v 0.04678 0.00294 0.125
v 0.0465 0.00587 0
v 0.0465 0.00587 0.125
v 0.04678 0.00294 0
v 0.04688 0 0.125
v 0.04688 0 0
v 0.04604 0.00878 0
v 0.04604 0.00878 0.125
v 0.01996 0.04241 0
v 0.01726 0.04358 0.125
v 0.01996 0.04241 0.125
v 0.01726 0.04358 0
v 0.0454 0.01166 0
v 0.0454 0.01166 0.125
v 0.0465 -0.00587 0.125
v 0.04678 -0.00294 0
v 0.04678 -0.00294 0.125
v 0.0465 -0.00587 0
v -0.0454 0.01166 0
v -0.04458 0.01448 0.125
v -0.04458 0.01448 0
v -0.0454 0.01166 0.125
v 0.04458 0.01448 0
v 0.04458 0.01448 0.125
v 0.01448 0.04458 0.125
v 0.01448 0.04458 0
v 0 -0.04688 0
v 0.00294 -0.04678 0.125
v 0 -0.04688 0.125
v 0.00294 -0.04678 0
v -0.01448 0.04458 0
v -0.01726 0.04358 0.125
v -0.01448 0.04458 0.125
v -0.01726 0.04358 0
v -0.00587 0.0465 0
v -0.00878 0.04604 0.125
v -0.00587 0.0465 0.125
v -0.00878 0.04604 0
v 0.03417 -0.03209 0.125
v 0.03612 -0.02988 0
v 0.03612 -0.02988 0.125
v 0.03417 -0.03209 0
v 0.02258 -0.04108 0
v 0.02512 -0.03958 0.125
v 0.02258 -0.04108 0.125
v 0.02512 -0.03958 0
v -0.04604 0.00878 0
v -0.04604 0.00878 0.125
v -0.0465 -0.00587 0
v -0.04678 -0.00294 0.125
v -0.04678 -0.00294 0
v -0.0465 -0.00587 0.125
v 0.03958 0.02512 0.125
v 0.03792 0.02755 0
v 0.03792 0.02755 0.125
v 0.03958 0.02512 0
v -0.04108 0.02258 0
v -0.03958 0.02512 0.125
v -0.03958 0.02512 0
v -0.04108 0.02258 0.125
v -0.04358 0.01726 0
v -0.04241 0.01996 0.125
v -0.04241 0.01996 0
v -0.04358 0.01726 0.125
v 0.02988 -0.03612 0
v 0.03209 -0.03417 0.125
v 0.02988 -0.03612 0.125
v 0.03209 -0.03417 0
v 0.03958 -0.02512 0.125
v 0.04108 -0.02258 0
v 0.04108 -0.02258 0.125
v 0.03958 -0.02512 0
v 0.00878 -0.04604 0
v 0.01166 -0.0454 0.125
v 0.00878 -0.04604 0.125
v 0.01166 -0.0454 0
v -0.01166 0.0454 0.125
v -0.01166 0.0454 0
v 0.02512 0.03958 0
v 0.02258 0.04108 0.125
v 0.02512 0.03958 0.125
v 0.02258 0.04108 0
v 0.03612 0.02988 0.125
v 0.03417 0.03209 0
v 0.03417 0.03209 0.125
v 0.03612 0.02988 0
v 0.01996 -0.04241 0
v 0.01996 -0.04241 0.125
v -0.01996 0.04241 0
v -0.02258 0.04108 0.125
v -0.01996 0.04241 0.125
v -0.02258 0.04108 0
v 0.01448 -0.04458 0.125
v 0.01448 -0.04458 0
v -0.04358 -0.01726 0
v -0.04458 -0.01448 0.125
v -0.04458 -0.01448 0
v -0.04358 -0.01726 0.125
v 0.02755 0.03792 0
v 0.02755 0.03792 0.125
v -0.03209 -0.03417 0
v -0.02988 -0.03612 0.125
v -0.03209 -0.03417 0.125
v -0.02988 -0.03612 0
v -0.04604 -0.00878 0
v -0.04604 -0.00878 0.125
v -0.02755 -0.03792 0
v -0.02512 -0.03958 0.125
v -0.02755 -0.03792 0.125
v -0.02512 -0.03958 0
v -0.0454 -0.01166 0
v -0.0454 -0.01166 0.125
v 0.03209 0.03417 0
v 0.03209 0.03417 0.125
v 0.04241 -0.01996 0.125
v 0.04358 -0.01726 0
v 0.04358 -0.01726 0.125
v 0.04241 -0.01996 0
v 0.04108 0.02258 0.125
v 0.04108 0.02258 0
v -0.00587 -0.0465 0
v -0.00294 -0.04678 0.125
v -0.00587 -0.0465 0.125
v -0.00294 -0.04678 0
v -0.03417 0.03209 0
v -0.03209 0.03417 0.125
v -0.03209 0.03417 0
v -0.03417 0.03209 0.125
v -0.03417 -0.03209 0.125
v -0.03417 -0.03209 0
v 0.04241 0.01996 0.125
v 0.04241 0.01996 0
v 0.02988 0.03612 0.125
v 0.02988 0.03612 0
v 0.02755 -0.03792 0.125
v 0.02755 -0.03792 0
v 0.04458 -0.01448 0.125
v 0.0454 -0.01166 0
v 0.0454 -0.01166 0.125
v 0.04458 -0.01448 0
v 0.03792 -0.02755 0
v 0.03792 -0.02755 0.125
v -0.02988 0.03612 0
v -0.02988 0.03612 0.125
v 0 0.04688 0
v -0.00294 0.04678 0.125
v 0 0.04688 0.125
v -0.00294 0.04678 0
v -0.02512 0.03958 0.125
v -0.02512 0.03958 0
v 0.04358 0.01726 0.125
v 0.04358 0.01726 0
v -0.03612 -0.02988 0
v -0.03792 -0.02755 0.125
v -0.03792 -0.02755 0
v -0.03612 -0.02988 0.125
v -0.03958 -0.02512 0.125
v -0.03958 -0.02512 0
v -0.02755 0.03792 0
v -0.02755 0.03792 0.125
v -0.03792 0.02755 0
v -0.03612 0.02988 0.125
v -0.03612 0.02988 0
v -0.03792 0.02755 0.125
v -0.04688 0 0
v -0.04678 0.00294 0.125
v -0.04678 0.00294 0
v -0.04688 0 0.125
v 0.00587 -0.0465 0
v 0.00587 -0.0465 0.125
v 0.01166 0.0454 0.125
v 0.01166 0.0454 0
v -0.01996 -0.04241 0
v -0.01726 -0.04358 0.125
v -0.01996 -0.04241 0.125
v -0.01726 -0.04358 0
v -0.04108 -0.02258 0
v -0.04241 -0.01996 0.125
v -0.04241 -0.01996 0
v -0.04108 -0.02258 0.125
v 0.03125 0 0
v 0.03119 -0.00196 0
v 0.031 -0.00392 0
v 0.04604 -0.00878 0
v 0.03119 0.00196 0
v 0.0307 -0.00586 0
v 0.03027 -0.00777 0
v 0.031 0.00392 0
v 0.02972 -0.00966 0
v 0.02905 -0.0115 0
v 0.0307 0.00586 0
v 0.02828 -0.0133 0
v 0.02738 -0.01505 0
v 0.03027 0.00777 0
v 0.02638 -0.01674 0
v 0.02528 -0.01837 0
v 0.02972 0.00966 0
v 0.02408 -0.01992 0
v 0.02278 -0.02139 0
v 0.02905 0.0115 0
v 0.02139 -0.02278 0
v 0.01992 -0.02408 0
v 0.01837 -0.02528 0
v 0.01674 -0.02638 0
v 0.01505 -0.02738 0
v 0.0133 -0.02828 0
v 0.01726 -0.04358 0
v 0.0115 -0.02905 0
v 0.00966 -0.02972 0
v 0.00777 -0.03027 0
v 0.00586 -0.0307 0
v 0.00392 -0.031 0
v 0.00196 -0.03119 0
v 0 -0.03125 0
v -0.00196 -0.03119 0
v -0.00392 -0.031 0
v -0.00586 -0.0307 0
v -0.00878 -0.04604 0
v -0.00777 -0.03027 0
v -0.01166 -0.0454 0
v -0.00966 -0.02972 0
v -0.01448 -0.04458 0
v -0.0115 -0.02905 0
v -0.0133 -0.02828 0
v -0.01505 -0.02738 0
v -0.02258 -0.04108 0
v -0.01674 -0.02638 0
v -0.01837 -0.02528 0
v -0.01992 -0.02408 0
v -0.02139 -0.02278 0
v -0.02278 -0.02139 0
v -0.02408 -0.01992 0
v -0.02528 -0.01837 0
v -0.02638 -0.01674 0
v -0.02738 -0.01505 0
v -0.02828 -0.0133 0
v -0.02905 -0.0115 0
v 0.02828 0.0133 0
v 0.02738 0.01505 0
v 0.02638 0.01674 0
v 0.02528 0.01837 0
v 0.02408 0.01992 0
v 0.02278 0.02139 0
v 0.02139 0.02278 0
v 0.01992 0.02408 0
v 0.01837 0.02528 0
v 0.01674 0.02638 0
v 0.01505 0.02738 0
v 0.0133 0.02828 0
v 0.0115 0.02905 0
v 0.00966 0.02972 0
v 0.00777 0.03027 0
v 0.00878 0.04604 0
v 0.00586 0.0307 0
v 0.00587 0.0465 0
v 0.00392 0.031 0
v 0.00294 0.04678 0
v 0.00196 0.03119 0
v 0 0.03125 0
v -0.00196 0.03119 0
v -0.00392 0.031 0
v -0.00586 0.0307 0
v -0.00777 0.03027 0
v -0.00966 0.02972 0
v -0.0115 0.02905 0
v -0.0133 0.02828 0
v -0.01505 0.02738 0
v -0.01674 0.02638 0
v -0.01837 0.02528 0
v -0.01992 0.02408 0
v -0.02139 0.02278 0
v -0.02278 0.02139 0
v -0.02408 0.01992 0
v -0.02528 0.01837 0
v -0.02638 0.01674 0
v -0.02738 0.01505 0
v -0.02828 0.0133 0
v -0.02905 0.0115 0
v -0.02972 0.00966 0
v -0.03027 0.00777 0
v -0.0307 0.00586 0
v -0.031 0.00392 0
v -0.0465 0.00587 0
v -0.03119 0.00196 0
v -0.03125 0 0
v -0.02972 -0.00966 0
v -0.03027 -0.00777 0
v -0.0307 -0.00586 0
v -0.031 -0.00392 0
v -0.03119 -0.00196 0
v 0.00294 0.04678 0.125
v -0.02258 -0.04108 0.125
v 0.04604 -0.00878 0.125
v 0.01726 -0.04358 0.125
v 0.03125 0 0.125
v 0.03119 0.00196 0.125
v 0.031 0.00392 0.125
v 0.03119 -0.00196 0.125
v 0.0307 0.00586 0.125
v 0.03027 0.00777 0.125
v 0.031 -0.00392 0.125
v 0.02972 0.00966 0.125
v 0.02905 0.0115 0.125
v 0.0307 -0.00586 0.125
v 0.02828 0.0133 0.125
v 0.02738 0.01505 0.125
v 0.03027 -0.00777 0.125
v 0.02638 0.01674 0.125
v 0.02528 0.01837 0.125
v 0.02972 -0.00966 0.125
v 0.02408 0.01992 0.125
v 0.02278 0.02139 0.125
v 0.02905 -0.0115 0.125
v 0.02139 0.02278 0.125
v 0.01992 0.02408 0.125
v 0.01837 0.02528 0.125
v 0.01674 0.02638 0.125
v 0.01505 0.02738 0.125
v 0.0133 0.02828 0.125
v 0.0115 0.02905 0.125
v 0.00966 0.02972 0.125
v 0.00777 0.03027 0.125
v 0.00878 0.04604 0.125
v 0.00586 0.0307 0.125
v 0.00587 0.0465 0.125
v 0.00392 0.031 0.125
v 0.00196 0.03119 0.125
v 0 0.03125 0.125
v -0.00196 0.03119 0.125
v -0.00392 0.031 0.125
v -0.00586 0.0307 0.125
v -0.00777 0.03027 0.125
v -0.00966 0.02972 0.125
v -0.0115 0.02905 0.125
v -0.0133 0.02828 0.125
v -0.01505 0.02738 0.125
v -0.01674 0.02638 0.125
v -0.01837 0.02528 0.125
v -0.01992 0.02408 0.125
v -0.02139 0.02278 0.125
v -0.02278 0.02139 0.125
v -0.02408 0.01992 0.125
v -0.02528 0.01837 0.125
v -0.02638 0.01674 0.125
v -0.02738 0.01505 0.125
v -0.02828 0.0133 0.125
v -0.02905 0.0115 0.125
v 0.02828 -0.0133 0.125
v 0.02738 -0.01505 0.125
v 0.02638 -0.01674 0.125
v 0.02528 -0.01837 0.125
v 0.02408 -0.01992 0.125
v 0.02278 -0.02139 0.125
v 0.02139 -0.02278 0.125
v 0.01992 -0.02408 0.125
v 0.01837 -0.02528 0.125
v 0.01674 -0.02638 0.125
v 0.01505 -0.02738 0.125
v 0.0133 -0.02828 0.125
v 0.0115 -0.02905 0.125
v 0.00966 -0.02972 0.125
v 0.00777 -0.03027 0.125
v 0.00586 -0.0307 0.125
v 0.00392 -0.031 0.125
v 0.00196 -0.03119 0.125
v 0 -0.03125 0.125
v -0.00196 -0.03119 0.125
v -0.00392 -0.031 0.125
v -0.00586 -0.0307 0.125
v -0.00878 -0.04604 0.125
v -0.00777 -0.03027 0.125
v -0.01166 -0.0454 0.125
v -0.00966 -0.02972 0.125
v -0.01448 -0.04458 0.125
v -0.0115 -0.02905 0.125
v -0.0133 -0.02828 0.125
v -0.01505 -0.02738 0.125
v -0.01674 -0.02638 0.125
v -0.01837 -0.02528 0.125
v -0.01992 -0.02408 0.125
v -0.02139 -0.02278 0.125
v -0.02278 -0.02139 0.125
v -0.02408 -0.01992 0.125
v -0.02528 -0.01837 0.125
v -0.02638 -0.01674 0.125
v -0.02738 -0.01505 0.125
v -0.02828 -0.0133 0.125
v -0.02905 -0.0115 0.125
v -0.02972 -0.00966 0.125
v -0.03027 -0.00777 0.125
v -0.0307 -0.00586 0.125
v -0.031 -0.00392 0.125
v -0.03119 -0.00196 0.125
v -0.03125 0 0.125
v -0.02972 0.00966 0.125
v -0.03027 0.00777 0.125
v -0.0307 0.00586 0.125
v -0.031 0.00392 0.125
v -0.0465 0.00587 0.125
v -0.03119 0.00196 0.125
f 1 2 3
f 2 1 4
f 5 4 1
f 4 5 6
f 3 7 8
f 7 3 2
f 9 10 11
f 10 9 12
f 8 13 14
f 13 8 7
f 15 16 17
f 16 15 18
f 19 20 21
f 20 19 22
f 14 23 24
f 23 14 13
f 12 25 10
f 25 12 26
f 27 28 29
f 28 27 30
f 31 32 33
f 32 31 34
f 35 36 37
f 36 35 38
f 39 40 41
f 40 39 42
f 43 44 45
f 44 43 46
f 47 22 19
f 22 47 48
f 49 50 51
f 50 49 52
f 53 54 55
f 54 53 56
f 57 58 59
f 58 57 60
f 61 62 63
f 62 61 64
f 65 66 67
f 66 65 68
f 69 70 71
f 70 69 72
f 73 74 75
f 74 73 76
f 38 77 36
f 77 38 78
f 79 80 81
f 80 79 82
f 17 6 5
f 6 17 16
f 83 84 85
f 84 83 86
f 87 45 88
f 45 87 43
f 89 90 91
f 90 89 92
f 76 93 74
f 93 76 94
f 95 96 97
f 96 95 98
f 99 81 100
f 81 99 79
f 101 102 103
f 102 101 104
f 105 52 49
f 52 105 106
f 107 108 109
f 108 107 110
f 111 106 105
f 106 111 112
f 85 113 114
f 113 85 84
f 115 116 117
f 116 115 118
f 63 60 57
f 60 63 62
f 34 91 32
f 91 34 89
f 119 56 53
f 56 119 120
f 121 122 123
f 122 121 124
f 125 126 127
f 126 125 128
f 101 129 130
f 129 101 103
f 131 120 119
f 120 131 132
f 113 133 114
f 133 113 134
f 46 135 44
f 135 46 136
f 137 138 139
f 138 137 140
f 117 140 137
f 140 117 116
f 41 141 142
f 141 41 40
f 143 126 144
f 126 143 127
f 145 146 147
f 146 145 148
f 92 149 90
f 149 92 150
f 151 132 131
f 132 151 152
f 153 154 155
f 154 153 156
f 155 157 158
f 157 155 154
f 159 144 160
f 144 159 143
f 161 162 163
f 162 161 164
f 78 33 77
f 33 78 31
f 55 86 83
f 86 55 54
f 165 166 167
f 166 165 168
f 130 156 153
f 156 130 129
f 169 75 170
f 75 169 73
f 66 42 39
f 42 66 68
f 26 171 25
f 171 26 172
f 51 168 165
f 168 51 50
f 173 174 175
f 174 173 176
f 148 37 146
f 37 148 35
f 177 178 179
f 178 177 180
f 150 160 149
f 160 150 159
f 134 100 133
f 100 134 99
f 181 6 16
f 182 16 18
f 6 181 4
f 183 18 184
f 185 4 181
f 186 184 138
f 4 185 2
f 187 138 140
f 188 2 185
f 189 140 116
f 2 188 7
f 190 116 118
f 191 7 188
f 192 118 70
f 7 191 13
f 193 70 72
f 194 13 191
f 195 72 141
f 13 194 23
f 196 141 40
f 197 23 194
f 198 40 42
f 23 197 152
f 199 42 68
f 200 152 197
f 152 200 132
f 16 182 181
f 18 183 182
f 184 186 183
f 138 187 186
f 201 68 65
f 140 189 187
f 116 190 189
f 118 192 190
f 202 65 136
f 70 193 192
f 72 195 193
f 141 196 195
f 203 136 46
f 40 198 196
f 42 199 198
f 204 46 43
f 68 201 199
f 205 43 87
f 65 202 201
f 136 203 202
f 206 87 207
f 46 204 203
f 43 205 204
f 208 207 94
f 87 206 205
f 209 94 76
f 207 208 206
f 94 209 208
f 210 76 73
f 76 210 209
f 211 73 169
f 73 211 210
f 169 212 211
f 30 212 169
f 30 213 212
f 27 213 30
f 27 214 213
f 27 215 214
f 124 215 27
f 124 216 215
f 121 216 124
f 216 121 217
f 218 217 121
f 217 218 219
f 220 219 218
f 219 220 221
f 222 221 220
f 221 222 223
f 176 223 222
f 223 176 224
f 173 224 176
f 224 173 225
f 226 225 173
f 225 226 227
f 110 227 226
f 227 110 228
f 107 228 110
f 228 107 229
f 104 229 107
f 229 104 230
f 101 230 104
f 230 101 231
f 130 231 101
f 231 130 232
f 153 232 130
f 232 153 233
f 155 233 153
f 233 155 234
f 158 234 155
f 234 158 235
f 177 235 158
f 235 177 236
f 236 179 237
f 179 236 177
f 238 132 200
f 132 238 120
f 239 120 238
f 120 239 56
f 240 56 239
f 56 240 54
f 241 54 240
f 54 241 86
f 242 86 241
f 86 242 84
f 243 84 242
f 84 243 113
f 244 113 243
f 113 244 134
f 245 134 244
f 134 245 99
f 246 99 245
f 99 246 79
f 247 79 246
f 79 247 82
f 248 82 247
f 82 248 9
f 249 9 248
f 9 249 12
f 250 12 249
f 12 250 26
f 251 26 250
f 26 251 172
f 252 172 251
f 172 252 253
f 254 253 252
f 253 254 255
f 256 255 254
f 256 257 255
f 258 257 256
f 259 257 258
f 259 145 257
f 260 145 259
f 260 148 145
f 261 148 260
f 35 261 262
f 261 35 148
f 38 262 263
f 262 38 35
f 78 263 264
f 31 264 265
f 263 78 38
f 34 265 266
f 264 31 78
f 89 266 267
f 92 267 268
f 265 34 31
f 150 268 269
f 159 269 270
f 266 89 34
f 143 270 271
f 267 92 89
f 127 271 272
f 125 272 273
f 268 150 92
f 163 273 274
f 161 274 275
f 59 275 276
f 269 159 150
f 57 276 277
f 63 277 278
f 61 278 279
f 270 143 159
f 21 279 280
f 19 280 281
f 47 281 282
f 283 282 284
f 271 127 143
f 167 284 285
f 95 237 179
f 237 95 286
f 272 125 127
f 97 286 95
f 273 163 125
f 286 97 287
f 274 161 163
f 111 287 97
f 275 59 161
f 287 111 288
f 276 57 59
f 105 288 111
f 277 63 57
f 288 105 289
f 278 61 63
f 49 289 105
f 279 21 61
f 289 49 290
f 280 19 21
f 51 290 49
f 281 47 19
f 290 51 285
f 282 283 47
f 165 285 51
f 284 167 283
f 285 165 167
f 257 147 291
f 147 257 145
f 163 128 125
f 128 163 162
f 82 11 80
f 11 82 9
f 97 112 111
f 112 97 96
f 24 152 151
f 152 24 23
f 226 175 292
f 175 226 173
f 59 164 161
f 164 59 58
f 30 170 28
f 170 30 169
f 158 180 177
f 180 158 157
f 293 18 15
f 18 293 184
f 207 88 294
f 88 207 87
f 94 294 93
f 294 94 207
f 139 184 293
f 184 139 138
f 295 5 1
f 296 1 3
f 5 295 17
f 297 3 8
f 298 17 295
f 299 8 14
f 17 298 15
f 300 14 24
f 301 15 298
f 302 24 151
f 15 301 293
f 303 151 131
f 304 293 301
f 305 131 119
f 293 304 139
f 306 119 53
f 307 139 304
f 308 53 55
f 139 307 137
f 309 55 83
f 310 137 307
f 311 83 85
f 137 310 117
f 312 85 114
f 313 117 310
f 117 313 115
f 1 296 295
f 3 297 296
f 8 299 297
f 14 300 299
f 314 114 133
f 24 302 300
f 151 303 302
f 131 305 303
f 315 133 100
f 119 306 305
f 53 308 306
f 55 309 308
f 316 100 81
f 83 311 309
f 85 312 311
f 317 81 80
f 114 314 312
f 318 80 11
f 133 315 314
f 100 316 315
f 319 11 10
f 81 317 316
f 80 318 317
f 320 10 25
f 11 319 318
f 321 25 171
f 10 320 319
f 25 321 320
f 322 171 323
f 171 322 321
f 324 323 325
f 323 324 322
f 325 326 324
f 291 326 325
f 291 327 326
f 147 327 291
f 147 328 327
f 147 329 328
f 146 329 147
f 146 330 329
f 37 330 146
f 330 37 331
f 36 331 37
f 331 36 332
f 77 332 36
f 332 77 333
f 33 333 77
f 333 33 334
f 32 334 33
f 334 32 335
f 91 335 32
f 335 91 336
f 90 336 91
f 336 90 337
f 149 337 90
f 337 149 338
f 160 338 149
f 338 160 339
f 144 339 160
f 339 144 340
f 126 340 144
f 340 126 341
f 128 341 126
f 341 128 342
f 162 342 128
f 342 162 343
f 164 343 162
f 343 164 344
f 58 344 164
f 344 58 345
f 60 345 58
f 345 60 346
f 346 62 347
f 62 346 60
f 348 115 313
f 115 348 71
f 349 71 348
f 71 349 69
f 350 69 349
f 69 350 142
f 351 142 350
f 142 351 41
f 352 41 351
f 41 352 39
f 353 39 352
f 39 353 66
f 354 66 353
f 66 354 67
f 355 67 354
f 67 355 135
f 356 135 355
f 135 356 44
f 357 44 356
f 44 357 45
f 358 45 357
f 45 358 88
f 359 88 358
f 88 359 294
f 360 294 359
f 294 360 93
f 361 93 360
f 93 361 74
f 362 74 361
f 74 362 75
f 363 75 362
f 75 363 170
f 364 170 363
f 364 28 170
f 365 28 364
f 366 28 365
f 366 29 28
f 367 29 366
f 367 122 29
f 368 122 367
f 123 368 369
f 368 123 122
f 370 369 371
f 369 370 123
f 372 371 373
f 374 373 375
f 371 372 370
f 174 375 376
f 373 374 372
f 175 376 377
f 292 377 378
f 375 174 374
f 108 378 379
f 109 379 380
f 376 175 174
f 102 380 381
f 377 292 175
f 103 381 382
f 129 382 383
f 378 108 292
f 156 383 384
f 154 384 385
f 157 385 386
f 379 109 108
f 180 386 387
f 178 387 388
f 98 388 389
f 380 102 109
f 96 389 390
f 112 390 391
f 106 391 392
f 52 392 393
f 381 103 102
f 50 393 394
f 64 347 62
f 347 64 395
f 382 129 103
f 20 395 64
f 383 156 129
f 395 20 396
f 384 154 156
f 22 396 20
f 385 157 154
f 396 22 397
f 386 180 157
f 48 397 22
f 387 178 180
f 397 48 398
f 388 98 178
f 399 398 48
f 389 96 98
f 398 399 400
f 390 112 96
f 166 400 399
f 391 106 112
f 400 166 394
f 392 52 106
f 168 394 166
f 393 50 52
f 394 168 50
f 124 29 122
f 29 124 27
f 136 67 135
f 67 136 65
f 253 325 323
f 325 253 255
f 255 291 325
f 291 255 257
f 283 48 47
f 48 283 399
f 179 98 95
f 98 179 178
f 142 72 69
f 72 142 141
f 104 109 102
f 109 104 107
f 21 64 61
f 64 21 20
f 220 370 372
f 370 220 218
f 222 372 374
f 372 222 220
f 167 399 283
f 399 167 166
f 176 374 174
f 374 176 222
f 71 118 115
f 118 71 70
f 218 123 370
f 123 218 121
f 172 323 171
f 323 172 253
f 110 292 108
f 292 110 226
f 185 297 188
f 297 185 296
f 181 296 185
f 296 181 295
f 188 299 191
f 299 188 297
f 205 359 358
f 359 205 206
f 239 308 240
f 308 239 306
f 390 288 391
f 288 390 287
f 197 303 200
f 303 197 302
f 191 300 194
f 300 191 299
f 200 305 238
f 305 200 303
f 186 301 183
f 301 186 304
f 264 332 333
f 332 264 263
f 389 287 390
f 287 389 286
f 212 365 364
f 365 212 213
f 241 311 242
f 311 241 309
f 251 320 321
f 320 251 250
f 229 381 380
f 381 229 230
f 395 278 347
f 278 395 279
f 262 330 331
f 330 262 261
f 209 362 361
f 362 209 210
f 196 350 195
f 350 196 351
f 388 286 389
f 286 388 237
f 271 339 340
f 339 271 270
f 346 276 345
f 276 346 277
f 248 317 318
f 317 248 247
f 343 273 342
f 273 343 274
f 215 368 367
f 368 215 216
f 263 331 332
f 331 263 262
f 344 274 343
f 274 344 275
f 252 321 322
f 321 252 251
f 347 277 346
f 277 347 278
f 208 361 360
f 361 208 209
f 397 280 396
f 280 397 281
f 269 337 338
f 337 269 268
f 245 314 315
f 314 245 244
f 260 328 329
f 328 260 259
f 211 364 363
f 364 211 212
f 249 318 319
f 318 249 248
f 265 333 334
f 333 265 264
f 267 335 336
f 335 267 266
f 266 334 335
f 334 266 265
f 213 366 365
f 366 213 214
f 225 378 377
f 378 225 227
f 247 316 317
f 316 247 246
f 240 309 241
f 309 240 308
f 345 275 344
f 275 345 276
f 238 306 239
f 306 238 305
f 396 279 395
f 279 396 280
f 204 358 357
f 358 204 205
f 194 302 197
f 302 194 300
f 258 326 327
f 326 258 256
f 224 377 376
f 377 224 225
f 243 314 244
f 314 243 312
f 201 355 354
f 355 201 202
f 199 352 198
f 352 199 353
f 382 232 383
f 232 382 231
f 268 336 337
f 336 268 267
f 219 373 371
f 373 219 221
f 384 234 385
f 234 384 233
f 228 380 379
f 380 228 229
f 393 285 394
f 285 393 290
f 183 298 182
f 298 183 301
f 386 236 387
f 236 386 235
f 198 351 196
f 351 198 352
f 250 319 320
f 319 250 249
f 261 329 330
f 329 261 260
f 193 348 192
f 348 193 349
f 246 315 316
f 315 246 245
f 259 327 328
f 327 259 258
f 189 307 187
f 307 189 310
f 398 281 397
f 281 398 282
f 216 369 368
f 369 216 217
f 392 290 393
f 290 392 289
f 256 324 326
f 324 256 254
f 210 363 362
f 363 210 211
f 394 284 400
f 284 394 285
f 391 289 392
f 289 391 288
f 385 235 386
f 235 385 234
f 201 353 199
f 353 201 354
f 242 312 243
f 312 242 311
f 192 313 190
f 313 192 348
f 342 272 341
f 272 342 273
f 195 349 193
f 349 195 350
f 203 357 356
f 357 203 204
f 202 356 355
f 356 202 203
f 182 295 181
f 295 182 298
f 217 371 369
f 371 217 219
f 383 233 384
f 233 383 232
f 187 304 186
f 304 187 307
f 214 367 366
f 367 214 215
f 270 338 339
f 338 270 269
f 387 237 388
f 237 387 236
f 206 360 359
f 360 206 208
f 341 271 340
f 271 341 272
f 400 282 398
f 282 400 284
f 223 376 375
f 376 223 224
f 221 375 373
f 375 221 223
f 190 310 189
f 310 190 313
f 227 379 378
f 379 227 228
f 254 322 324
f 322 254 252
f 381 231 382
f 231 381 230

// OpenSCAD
// file: MMlib/paper_tube.scad
//################################################################
// paper tube.scad - creates simple hollow cylinder
// (c) 2021 - Roie R. Black
// docs: https://rblack.github.io/math-magik/magik/paper_tube.html

$fn = 100;

module paper_tube(r=1, h=2, t=0.25) {
  th = 3 * h;
  difference() {
    cylinder(r=r+t,h=h);
    translate([0,0,-h])
      cylinder(r=r, h=th);
  }
}

paper_tube();
// file: ../../materials.scad
//###########################################
// materials.scad
// (c) 2021 - Roie R. Black
//*******************************************

tube_thickness = 1/64;
tube_height = 1/8;
post_diameter = 1/16;
// main file
//#################################################
// wing_mount.scad
// (c) 2021 Roie R. Black
//=================================================
include <../../materials.scad>
use <MMlib/paper_tube.scad>

module wing_mount() {
  color("Yellow")
	  paper_tube(post_diameter/2,tube_height,tube_thickness);
}

wing_mount();
